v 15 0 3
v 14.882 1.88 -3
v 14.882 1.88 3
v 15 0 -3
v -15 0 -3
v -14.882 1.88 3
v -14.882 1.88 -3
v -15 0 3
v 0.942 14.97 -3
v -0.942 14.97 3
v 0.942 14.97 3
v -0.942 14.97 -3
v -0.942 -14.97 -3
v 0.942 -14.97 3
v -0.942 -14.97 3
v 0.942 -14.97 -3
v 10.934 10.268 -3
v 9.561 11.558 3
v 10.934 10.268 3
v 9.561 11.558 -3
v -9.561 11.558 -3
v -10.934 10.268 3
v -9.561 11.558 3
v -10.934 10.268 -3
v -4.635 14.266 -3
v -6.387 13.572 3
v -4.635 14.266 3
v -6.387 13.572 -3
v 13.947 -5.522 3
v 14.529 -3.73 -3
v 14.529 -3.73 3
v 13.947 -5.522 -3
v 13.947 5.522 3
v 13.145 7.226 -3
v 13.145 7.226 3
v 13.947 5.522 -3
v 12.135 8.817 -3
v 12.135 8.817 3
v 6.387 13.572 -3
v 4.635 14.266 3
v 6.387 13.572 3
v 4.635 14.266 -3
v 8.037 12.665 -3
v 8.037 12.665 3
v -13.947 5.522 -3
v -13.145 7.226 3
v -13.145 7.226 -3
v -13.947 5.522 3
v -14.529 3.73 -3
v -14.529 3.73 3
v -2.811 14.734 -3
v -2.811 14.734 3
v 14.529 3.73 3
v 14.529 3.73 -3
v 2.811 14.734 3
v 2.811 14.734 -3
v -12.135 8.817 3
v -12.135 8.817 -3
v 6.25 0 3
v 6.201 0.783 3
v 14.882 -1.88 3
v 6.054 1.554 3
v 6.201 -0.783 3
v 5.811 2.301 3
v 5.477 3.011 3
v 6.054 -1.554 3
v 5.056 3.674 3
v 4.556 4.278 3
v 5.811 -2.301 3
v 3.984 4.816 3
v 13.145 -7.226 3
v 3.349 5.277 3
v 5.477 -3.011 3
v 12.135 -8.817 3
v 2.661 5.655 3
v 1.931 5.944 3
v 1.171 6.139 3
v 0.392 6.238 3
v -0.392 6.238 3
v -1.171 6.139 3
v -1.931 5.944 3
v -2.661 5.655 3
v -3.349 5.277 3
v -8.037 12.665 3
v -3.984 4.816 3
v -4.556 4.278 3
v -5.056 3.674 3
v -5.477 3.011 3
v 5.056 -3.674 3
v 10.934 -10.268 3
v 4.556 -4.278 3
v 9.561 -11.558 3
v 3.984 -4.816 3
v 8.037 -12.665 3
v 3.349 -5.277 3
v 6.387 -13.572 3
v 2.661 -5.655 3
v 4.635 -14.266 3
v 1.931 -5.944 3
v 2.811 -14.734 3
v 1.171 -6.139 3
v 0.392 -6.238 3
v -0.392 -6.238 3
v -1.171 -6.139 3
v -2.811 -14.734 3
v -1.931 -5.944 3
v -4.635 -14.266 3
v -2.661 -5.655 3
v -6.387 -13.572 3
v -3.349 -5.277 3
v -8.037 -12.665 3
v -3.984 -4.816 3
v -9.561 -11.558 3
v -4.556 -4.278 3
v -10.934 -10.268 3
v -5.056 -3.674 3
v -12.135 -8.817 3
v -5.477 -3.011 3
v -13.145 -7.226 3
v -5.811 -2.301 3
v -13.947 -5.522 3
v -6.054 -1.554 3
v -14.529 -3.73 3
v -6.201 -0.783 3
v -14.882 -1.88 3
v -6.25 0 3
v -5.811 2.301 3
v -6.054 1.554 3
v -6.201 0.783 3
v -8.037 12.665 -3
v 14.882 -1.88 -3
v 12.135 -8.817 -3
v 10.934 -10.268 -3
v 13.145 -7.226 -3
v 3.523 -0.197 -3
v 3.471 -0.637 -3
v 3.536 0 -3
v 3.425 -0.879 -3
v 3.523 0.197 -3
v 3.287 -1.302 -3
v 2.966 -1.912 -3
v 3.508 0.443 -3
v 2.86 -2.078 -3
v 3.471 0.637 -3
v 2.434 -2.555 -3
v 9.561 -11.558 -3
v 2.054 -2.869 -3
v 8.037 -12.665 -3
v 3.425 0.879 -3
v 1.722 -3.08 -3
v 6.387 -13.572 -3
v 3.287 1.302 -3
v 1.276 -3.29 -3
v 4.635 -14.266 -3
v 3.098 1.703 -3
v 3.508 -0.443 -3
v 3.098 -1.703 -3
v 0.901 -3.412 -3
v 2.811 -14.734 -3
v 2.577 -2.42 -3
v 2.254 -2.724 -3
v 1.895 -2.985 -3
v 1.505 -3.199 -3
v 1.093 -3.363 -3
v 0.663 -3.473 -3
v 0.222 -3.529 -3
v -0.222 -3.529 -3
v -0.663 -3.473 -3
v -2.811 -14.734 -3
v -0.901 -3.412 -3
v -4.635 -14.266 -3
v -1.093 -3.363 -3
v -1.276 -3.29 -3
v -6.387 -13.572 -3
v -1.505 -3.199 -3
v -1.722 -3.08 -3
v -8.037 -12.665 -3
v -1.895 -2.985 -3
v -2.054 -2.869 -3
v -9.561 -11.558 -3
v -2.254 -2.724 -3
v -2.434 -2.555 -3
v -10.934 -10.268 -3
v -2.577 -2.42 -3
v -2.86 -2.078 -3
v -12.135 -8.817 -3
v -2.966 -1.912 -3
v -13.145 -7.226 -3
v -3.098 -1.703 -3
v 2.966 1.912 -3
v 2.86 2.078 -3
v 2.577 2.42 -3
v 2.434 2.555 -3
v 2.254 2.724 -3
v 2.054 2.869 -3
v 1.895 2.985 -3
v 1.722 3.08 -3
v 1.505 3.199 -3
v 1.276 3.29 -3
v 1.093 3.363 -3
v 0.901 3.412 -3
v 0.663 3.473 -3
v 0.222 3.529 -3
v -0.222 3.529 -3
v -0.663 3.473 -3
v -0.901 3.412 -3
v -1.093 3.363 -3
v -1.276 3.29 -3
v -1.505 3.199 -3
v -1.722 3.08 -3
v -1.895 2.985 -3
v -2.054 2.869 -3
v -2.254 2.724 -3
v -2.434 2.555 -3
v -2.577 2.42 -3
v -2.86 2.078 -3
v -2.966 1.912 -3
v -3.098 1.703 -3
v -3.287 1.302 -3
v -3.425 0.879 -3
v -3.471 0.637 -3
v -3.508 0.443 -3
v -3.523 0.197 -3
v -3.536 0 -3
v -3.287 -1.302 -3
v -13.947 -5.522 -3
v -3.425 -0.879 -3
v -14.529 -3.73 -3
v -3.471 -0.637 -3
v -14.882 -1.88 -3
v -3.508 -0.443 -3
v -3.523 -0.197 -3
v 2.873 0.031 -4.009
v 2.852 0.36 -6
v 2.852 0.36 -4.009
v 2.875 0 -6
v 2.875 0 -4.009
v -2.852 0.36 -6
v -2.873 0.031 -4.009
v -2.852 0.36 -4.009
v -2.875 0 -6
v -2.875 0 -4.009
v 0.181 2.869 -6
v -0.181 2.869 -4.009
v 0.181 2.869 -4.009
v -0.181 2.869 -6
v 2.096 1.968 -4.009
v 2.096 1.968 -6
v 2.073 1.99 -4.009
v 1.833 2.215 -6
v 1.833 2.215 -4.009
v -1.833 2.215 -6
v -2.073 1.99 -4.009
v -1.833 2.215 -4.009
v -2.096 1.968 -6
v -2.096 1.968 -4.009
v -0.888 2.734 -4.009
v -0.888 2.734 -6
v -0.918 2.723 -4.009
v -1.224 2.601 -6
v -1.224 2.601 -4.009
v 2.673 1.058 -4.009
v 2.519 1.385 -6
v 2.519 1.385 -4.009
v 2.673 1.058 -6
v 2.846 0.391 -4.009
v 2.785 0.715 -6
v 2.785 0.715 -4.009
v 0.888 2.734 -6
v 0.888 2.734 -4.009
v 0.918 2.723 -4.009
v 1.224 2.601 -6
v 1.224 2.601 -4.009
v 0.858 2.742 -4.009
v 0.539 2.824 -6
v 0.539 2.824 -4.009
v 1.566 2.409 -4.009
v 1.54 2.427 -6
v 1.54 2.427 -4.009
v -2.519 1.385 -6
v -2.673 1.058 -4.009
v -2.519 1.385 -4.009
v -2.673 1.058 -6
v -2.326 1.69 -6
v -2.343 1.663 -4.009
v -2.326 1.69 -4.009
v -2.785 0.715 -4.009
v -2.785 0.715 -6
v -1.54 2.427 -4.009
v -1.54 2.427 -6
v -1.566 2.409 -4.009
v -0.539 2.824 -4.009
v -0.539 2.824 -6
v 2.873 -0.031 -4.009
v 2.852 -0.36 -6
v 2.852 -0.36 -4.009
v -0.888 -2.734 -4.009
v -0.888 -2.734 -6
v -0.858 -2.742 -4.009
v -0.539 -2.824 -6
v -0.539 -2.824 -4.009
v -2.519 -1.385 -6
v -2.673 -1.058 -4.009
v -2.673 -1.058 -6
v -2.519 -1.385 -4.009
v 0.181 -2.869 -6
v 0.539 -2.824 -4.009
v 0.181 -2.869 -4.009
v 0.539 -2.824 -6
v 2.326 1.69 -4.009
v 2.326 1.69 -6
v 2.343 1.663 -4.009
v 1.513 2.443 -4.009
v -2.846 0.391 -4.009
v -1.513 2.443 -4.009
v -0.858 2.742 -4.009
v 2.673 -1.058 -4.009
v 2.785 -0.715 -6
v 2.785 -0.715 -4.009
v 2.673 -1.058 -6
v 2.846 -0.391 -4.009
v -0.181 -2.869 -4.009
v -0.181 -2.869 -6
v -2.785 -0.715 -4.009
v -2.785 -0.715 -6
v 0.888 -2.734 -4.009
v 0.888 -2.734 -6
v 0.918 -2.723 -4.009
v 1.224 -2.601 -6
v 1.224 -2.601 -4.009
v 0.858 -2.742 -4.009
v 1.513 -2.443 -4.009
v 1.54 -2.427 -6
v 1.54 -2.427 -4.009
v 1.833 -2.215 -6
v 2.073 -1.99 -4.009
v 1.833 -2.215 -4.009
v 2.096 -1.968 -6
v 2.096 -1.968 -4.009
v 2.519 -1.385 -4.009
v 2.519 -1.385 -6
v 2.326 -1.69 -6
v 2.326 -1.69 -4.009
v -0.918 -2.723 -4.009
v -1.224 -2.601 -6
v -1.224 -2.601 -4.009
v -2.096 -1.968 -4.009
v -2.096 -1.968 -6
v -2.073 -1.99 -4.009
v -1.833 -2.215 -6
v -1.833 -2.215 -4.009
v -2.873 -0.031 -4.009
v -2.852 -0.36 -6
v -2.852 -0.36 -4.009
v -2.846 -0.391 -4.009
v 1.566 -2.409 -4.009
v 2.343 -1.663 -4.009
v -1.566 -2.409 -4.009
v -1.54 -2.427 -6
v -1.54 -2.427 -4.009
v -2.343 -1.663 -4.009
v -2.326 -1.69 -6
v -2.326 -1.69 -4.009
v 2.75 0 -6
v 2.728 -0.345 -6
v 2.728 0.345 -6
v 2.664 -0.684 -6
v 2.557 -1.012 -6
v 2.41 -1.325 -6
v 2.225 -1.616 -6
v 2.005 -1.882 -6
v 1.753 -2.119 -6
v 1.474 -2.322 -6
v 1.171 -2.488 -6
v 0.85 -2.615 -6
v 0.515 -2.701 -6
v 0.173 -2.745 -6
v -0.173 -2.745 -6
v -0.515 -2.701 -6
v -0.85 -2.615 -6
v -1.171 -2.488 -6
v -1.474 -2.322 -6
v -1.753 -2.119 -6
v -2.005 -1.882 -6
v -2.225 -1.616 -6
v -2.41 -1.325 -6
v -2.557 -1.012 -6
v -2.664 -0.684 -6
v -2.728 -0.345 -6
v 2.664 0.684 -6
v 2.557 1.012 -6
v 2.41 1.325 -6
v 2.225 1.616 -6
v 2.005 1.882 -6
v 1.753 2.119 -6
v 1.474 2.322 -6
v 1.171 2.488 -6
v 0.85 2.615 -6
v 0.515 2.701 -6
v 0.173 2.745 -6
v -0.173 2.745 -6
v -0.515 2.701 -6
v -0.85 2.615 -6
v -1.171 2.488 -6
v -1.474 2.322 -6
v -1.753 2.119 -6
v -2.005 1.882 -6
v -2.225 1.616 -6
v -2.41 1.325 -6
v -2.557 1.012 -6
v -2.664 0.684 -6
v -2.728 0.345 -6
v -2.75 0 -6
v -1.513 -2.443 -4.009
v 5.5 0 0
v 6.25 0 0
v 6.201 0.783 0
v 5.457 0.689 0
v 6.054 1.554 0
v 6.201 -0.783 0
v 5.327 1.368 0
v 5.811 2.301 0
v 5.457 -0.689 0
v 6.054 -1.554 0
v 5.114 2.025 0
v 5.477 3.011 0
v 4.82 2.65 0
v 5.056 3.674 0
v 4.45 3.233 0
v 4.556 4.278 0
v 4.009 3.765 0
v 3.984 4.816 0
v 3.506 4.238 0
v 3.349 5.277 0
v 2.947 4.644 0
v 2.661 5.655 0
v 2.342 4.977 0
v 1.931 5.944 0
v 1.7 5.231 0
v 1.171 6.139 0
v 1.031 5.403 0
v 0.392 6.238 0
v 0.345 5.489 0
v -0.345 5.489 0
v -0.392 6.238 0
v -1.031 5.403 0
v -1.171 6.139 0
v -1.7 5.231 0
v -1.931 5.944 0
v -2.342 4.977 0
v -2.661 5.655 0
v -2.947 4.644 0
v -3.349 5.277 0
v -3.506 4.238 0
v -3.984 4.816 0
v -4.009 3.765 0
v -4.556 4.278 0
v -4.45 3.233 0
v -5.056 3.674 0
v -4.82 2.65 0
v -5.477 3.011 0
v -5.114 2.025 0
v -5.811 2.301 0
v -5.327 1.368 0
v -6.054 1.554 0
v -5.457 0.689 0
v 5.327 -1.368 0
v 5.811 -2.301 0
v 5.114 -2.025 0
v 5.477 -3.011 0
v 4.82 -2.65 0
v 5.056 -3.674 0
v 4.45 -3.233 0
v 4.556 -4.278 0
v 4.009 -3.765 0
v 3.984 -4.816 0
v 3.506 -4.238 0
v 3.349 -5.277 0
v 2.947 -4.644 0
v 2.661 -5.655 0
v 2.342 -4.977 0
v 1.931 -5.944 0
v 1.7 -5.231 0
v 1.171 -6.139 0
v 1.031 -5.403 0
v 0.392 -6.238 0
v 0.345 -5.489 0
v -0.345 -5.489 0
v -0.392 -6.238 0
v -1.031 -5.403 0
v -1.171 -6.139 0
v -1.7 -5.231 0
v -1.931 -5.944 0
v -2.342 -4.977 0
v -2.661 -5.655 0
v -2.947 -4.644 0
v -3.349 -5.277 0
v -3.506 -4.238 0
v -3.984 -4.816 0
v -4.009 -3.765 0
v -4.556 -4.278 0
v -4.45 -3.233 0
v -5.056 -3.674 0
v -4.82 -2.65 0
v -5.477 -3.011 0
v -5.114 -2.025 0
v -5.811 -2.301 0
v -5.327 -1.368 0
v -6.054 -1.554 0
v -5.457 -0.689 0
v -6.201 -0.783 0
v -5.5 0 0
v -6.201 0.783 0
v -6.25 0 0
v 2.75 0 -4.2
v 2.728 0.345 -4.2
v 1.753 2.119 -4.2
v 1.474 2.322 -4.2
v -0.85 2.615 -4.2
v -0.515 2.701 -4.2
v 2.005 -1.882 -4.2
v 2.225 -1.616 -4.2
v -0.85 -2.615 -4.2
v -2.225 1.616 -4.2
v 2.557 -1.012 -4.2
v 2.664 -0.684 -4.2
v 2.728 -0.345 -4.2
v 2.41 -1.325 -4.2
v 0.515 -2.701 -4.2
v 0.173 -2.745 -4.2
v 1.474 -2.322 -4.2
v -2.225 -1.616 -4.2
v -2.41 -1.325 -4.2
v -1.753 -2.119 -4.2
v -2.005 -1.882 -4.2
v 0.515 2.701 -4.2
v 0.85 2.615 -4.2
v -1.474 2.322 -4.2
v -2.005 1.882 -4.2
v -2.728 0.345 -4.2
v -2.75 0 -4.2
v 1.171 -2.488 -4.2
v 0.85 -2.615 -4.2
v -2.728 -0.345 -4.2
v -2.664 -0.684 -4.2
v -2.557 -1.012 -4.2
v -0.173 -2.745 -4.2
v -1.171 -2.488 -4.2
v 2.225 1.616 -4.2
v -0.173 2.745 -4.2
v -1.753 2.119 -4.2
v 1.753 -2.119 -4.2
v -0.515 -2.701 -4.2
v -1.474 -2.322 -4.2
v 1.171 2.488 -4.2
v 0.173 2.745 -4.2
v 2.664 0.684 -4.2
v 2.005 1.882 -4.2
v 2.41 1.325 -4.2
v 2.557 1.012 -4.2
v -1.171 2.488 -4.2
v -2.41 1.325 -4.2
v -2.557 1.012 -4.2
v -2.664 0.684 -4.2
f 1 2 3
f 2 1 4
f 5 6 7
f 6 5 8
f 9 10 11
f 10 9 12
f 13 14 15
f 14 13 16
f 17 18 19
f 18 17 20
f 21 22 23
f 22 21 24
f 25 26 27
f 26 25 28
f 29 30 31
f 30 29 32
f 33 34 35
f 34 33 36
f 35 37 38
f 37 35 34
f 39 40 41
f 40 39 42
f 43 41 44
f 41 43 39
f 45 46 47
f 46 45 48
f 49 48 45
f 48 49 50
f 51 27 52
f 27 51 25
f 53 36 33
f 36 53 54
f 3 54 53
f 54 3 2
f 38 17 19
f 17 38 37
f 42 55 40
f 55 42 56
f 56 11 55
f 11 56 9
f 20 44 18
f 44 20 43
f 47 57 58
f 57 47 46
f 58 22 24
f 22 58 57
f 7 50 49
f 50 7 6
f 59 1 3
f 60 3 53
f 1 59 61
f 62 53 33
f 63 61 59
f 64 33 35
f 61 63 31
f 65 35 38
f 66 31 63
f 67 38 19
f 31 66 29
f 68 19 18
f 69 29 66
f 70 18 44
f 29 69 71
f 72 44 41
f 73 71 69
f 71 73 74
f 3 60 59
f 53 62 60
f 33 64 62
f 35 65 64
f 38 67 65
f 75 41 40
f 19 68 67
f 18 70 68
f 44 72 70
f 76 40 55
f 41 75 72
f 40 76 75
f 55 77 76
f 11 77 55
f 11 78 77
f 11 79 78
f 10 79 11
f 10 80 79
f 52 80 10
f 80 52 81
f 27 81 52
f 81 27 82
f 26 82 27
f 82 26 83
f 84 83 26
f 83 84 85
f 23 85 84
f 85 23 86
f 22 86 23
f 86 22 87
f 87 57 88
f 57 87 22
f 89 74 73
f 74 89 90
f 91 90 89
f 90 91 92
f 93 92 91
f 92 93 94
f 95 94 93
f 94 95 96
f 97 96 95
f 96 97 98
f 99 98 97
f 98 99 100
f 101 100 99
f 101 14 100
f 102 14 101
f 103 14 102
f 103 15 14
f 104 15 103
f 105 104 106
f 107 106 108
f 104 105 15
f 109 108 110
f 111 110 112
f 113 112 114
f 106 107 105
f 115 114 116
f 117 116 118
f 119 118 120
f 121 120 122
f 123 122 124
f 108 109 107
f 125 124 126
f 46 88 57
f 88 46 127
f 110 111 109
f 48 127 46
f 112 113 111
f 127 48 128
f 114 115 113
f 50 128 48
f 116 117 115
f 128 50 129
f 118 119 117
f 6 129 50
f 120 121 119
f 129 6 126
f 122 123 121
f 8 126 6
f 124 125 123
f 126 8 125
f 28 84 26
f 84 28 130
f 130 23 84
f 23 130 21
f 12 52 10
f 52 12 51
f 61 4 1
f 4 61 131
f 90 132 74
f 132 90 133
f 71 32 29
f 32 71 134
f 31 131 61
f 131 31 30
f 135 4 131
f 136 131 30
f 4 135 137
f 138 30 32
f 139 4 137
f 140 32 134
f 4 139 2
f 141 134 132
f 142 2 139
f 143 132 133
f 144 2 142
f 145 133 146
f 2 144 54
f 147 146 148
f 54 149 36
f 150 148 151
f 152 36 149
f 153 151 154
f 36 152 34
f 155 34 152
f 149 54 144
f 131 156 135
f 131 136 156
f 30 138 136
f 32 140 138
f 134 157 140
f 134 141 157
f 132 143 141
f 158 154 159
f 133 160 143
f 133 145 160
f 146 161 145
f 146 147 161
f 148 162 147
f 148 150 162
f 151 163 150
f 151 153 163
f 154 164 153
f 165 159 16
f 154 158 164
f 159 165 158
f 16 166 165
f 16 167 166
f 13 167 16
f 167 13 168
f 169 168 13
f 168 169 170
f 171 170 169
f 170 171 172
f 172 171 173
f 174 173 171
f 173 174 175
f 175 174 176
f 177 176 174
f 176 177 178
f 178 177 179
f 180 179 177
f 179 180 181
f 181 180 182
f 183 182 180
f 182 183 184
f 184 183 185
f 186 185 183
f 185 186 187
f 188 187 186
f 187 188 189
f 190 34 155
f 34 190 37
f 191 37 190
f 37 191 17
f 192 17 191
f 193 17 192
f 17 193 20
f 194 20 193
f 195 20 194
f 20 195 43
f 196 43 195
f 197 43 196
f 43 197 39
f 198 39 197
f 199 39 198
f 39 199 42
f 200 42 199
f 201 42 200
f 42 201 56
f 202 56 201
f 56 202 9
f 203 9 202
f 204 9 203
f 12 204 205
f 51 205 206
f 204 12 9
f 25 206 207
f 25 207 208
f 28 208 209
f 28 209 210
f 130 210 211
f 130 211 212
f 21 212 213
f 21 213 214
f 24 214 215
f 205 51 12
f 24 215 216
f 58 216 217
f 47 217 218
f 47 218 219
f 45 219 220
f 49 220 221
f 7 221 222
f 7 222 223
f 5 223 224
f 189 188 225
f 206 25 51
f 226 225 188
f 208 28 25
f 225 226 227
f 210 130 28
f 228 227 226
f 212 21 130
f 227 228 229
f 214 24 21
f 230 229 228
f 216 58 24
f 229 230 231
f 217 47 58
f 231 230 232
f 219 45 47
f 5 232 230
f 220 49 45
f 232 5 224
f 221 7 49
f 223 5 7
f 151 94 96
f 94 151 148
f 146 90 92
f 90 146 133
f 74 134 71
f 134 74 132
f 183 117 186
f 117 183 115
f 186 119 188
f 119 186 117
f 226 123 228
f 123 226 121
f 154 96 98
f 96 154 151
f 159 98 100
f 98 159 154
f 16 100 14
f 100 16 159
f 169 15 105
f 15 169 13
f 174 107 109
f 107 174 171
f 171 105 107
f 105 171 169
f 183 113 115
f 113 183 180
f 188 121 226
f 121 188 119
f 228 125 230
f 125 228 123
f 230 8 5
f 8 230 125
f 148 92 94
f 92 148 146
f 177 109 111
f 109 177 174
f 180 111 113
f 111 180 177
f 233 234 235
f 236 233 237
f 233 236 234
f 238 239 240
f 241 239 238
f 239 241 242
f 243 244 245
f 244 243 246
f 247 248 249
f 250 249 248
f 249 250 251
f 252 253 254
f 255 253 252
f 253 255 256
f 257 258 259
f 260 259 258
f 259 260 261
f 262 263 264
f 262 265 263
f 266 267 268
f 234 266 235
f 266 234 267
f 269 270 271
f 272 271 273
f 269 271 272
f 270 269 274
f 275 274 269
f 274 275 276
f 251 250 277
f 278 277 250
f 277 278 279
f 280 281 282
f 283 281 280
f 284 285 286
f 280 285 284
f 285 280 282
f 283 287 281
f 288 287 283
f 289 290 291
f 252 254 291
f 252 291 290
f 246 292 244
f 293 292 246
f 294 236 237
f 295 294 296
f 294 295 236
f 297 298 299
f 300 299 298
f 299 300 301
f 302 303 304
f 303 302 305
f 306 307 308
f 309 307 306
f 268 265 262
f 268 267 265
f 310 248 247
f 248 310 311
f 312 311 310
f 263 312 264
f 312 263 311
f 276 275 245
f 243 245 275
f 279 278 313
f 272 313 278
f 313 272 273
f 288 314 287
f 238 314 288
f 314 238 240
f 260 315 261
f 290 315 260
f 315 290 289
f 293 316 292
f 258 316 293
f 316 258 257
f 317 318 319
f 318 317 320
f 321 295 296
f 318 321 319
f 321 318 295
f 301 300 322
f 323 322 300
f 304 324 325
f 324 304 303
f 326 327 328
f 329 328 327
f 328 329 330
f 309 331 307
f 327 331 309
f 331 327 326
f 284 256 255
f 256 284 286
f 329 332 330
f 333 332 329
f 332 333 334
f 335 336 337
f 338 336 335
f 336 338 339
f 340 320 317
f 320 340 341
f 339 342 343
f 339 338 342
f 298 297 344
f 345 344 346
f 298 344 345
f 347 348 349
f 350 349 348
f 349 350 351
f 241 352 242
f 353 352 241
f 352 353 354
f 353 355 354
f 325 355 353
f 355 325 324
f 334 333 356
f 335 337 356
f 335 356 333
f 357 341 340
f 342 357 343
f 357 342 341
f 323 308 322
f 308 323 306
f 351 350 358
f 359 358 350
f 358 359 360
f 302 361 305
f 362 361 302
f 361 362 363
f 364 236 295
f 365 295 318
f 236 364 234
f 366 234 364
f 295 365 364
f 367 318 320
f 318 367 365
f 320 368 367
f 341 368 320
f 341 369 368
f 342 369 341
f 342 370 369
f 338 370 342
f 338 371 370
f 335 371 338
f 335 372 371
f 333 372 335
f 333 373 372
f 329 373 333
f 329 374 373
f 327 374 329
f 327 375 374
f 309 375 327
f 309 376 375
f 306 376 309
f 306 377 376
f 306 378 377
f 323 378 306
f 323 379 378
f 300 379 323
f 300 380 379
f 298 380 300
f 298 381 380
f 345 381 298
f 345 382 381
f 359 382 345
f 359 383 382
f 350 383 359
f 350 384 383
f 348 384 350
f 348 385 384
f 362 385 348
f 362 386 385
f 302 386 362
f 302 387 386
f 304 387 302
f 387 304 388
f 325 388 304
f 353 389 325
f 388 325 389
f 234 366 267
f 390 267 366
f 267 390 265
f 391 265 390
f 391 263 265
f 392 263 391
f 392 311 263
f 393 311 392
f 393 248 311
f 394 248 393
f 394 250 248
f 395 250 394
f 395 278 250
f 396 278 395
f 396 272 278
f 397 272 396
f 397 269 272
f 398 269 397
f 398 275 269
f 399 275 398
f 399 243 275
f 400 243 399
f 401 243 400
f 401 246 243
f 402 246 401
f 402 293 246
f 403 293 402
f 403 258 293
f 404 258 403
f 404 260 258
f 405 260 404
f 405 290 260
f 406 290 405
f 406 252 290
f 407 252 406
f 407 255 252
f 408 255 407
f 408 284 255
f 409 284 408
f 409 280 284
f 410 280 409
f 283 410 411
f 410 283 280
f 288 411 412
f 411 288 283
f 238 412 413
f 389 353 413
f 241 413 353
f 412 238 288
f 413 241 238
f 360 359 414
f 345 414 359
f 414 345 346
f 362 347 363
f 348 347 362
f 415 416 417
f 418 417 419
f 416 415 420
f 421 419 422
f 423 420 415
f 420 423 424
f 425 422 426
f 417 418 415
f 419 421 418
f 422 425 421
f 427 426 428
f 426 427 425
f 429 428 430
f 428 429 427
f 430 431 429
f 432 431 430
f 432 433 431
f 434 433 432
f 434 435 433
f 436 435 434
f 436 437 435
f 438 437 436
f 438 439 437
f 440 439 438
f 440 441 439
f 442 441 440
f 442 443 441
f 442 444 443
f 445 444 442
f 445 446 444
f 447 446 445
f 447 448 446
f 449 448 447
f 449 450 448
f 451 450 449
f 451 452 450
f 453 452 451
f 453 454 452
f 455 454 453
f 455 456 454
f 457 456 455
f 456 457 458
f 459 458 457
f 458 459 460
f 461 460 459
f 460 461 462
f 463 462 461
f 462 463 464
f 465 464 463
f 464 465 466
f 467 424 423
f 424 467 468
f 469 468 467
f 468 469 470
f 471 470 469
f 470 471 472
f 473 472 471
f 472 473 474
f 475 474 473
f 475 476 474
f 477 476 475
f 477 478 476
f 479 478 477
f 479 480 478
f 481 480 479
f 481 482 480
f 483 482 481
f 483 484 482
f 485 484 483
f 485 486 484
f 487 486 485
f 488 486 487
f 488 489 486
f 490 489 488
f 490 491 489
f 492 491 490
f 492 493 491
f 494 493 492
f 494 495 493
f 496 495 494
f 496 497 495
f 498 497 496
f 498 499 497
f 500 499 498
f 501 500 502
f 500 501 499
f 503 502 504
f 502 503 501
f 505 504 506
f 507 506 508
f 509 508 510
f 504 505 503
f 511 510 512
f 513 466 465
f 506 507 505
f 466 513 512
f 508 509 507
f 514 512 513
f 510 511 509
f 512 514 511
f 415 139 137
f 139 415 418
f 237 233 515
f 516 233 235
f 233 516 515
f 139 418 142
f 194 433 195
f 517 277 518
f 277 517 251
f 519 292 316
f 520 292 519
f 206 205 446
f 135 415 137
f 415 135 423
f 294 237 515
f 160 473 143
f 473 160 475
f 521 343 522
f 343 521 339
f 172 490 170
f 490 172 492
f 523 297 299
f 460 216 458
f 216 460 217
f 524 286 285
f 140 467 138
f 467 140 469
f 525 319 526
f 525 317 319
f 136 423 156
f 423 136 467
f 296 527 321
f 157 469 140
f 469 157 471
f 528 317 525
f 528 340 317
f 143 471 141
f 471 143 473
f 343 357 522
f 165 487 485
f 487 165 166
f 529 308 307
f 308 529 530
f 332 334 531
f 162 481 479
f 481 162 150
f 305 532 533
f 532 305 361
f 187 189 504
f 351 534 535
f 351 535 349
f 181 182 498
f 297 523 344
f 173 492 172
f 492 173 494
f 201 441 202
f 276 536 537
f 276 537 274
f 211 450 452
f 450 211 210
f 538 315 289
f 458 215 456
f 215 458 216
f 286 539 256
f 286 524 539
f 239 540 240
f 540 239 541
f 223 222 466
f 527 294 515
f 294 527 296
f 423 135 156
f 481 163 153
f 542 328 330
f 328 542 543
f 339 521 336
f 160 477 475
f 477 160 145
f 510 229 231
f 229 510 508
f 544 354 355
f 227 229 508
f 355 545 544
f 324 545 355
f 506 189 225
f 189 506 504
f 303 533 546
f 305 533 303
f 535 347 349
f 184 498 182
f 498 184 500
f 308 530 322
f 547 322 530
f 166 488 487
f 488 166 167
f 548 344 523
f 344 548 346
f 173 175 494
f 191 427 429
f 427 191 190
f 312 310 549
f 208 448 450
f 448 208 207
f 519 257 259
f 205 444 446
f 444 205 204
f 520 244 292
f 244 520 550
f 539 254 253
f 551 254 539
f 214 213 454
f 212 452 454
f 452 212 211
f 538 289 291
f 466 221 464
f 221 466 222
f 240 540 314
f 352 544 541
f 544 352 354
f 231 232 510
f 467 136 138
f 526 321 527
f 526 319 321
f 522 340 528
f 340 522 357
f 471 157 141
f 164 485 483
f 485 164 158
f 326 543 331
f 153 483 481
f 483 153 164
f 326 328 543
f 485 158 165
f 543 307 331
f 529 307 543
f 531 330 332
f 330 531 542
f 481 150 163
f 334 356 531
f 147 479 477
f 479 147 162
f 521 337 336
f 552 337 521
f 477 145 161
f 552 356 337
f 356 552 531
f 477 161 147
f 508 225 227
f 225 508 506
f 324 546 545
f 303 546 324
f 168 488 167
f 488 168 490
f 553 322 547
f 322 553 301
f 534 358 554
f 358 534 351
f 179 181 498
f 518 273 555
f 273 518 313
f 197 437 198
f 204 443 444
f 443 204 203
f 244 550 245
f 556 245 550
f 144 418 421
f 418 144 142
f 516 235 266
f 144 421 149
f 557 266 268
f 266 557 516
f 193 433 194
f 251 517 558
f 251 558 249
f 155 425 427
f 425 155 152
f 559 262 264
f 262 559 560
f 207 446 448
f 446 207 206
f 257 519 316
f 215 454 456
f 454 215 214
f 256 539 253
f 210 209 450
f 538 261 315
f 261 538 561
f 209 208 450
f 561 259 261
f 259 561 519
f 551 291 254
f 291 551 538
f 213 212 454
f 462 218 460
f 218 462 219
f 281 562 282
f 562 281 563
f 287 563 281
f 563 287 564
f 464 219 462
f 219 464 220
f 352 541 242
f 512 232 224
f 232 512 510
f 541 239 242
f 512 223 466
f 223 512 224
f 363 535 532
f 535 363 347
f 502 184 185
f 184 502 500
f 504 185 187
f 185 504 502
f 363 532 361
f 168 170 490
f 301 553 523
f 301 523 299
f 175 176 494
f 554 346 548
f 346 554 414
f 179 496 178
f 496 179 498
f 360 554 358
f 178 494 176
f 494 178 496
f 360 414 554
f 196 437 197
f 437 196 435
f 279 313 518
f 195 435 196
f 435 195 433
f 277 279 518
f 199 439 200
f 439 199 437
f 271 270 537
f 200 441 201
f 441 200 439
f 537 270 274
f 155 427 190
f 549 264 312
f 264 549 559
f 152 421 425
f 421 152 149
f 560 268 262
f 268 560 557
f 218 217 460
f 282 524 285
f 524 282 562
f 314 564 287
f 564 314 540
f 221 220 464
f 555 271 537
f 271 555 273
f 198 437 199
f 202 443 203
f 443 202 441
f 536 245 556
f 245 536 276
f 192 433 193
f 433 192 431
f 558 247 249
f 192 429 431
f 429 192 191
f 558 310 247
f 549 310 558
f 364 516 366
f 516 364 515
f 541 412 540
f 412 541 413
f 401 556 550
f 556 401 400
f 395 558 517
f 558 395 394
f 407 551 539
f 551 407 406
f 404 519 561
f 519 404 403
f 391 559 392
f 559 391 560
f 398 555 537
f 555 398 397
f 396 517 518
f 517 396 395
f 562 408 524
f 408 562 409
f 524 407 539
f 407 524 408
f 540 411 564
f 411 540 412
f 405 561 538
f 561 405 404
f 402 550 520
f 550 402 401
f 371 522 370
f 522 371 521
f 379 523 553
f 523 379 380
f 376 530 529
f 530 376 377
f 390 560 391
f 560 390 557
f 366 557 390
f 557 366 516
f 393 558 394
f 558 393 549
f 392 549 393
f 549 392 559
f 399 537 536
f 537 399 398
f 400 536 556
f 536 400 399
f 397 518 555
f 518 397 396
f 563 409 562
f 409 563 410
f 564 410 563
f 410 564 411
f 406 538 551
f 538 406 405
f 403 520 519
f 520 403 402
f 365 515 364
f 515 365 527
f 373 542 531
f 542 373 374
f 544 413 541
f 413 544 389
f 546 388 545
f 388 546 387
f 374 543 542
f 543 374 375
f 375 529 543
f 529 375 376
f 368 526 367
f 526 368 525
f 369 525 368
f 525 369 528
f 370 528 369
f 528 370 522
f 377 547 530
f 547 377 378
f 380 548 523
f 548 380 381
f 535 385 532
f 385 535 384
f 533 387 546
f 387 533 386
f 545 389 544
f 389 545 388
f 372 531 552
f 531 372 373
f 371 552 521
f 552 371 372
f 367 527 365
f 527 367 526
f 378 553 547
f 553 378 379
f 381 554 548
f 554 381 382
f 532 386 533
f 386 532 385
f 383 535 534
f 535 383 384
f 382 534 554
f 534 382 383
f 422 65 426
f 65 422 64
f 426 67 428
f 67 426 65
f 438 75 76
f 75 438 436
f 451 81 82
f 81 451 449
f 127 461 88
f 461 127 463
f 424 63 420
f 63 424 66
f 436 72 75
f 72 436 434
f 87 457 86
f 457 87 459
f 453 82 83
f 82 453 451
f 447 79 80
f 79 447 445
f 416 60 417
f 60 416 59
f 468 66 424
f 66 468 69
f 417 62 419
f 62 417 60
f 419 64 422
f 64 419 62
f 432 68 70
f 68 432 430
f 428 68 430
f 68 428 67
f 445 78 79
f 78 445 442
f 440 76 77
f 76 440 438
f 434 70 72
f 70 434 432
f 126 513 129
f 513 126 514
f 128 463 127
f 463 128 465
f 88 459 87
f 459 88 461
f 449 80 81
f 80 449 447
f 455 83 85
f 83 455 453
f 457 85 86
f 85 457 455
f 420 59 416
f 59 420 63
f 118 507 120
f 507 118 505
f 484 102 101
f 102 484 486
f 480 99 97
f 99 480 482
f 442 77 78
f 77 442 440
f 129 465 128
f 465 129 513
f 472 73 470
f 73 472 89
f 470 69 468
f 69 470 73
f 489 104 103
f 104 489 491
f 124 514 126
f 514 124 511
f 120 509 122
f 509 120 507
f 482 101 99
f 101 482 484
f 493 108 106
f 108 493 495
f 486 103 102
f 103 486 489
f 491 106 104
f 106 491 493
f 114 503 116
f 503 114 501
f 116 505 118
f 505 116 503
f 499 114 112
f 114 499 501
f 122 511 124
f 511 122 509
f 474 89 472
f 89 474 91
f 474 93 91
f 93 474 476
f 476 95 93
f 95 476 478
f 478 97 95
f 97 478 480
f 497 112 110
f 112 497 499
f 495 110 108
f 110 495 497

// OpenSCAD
$fn = 50;

difference() {
	union() {
		translate(v = [0, 0, -3.0]) {
			cylinder(h = 6, r = 15.0);
		}
		#translate(v = [0, 0, -6.0]) {
			cylinder(h = 6, r = 2.875);
		}
	}
	union() {
		translate(v = [0, 0, 0]) {
			rotate(a = [0, 0, 0]) {
				difference() {
					union() {
						translate(v = [0, 0, -6.0]) {
							cylinder(h = 6, r = 2.25);
						}
						translate(v = [0, 0, -4.2]) {
							cylinder(h = 4.2, r1 = 2.75, r2 = 5.5);
						}
						translate(v = [0, 0, -6.0]) {
							cylinder(h = 6, r = 2.75);
						}
						translate(v = [0, 0, -6.0]) {
							cylinder(h = 6, r = 2.25);
						}
					}
					union();
				}
			}
		}
		#cylinder(h = 3, r = 6.25);
	}
}
